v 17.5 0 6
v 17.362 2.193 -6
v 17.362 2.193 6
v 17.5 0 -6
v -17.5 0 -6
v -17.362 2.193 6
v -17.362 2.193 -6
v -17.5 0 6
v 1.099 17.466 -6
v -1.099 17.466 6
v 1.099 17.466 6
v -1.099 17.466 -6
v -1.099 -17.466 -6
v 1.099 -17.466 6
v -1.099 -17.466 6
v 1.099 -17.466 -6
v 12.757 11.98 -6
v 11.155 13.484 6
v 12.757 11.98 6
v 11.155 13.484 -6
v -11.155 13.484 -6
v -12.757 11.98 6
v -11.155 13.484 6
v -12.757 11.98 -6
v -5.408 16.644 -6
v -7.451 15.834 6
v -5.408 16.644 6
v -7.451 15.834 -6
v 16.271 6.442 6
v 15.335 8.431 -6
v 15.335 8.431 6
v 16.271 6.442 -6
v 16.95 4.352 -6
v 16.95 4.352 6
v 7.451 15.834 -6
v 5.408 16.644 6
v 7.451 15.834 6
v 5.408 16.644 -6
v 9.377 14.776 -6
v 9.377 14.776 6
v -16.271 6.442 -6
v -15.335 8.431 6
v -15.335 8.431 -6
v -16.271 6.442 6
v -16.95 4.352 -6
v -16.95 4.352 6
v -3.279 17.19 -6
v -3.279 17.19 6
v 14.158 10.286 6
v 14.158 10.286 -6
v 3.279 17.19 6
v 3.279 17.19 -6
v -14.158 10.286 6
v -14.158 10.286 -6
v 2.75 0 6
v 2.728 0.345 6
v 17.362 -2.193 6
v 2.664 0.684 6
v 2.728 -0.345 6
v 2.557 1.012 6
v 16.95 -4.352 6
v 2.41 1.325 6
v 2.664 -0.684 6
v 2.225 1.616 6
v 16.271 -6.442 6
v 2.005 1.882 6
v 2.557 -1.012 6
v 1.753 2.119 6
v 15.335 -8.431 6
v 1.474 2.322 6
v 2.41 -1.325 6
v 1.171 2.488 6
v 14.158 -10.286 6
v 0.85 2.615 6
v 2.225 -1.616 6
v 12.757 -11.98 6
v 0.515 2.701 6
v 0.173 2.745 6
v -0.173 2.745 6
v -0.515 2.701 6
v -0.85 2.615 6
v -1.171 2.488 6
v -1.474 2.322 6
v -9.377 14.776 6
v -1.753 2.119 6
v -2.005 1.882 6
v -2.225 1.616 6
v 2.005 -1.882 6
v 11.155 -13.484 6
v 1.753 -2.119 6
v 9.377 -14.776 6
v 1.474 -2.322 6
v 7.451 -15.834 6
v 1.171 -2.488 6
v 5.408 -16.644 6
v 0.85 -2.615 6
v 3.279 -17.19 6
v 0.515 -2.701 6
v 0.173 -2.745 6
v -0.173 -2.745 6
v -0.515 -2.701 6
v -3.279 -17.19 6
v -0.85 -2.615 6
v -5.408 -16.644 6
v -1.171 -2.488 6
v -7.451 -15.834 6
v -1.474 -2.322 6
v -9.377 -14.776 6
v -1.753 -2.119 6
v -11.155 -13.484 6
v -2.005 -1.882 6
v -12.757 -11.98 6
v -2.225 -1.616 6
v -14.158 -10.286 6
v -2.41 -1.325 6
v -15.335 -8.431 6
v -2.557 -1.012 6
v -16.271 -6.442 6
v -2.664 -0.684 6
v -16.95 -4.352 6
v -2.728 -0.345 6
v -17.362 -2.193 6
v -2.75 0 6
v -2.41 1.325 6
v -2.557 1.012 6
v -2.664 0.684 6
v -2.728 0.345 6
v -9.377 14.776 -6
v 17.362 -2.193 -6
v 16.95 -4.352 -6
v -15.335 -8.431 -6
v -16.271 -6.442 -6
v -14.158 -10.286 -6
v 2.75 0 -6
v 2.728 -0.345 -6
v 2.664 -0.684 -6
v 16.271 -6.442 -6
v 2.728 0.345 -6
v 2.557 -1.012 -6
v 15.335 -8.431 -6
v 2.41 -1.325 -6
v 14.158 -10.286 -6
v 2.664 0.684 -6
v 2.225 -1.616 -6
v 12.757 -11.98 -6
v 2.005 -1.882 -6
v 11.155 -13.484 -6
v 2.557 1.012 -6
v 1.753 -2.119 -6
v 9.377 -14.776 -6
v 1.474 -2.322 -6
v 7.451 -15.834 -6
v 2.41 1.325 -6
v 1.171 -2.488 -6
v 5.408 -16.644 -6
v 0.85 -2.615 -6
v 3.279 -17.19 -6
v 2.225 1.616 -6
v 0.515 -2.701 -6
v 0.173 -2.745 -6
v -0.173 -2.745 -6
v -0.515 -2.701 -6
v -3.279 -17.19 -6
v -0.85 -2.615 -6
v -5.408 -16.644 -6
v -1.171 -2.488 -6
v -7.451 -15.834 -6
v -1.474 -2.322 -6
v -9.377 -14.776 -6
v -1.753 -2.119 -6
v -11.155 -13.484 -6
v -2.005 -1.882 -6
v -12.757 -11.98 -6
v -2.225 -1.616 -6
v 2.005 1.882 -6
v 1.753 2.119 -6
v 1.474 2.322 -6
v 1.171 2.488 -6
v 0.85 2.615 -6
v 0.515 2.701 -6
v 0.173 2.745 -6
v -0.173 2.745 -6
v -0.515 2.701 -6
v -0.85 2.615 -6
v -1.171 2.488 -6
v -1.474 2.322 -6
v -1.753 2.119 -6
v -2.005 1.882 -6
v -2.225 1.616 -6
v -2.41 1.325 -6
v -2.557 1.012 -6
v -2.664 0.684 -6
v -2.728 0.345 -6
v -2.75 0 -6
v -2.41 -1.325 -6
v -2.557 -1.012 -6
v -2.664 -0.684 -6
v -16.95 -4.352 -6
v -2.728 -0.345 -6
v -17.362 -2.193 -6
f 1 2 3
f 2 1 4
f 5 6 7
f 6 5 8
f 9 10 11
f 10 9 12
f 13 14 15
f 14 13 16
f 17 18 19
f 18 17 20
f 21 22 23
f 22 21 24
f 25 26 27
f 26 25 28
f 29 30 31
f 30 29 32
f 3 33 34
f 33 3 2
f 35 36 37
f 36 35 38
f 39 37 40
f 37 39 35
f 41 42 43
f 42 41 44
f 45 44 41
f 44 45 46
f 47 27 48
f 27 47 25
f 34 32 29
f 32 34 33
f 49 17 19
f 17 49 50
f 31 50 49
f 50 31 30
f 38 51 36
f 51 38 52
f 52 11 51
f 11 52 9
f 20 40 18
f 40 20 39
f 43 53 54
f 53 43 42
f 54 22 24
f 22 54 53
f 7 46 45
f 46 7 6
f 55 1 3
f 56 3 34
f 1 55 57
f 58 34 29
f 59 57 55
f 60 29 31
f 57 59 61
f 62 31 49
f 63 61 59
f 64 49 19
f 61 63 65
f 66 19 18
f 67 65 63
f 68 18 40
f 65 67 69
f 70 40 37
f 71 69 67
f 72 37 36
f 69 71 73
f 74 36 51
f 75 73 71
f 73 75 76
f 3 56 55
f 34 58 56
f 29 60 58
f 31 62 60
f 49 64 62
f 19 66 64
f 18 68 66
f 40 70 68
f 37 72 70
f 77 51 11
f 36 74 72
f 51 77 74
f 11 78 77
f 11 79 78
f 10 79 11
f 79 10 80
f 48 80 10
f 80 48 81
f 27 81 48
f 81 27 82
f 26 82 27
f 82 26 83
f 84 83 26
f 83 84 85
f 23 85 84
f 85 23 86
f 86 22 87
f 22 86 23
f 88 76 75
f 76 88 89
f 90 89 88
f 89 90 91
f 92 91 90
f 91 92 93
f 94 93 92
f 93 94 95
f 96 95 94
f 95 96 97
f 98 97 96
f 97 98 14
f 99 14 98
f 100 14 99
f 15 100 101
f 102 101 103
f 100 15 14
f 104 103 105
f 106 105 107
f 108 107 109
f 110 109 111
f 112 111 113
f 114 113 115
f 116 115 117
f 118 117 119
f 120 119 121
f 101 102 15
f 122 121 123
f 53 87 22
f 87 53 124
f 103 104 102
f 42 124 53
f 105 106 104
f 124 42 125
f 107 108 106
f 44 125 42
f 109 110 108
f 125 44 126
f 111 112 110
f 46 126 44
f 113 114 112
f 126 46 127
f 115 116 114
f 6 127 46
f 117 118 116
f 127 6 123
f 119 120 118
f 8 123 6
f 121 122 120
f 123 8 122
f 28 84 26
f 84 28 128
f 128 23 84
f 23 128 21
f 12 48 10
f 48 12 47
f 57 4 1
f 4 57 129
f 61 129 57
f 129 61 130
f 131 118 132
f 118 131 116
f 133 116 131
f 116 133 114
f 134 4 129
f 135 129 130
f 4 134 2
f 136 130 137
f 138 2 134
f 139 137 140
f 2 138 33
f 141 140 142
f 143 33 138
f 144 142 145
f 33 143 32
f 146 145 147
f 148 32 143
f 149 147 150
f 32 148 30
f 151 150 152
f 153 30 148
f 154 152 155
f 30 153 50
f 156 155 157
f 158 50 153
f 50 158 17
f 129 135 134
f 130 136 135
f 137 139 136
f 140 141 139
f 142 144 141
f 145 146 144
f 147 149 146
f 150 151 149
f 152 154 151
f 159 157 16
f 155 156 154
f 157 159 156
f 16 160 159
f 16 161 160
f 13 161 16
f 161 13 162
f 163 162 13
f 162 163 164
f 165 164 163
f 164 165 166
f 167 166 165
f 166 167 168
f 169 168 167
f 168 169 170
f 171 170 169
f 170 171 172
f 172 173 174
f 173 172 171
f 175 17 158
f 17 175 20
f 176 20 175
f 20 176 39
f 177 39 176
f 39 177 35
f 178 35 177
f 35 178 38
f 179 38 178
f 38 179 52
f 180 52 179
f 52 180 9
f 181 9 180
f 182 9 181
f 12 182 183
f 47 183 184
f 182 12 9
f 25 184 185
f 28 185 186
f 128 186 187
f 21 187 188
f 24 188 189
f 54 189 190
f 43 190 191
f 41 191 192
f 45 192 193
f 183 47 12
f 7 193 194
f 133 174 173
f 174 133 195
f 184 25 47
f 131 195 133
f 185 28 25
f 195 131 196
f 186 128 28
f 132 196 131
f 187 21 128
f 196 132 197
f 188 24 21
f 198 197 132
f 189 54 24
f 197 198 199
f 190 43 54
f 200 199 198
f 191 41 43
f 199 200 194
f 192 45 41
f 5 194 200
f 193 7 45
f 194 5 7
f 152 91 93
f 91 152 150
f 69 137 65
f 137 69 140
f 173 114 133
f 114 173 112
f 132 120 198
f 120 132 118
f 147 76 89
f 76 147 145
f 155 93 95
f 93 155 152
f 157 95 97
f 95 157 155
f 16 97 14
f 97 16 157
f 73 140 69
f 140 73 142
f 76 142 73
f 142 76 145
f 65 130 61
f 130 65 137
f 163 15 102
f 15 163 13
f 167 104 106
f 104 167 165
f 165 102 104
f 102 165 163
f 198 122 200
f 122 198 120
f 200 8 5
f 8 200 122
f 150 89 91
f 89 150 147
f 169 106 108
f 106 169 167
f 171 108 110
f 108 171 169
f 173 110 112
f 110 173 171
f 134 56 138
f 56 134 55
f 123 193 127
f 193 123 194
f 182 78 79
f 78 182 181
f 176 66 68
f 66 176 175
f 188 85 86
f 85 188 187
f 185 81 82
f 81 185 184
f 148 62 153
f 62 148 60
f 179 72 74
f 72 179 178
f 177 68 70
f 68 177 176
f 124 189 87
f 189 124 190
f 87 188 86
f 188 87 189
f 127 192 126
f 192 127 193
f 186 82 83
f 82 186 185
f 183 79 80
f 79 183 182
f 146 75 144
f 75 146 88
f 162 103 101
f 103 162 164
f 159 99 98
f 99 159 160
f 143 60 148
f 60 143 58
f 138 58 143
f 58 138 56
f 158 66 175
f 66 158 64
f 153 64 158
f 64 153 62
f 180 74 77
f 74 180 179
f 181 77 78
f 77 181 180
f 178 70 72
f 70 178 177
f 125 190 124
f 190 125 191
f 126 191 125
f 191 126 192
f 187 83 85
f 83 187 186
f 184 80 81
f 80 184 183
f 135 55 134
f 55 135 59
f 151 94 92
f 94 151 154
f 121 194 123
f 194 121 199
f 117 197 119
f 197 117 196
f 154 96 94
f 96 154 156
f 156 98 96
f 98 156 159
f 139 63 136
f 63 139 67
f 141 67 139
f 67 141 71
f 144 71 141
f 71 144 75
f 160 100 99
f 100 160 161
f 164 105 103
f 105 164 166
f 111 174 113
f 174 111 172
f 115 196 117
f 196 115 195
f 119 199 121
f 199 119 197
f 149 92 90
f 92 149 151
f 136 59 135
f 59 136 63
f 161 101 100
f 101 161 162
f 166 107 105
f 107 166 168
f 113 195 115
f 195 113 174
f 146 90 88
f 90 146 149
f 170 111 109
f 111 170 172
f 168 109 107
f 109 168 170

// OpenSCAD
$fn = 50;


difference() {
	union() {
		translate(v = [0, 0, -6.0000000000]) {
			cylinder(h = 12, r = 17.5000000000);
		}
	}
	union() {
		translate(v = [0, 0, -100.0000000000]) {
			cylinder(h = 200, r = 2.7500000000);
		}
	}
}
